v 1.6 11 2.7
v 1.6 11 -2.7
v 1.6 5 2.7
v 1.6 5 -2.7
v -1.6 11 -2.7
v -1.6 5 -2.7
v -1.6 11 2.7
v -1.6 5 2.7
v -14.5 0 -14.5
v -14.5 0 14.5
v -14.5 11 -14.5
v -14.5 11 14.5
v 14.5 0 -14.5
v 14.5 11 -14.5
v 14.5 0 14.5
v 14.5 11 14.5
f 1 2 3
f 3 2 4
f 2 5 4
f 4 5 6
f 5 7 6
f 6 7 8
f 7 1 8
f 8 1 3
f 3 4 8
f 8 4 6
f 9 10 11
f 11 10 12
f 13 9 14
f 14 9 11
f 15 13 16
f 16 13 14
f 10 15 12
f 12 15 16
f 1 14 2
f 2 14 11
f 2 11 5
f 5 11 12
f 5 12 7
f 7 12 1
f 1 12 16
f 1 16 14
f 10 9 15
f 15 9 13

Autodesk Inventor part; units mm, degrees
ref_plane "YZ Plane" through (0, 0, 0) normal (1, 0, 0) x (0, 1, 0)
ref_plane "XZ Plane" through (0, 0, 0) normal (0, 1, 0) x (-1, 0, 0)
ref_plane "XY Plane" through (0, 0, 0) normal (0, 0, 1) x (1, 0, 0)
sketch "Sketch1" plane through (0, 0, 0) normal (0, 1, 0) x (-1, 0, 0)
  line L0 (14.5, -14.5) -> (-14.5, -14.5)
  line L1 (-14.5, -14.5) -> (-14.5, 14.5)
  line L2 (-14.5, 14.5) -> (14.5, 14.5)
  line L3 (14.5, 14.5) -> (14.5, -14.5)
  dimension "d11" = 29
  dimension "d14" = 29
extrude "Extrusion1" add sketch "Sketch1" along normal blind 11
sketch "Sketch5" plane through (0, 11, 0) normal (0, 1, 0) x (1, 0, 0)
  line L0 (-1.6, 2.7) -> (1.6, 2.7)
  line L1 (1.6, 2.7) -> (1.6, -2.7)
  line L2 (1.6, -2.7) -> (-1.6, -2.7)
  line L3 (-1.6, -2.7) -> (-1.6, 2.7)
  point P0 (0, 0)
  dimension "d31" = 2.7
  dimension "d32" = 2.7
  dimension "d33" = 3.2
  dimension "d34" = 1.6
extrude "Extrusion4" cut sketch "Sketch5" against normal blind 6
equation "\"d14\" = d11"
equation "\"d34\" = 0.5 * d33"
properties part number "Motor_fit_check"
